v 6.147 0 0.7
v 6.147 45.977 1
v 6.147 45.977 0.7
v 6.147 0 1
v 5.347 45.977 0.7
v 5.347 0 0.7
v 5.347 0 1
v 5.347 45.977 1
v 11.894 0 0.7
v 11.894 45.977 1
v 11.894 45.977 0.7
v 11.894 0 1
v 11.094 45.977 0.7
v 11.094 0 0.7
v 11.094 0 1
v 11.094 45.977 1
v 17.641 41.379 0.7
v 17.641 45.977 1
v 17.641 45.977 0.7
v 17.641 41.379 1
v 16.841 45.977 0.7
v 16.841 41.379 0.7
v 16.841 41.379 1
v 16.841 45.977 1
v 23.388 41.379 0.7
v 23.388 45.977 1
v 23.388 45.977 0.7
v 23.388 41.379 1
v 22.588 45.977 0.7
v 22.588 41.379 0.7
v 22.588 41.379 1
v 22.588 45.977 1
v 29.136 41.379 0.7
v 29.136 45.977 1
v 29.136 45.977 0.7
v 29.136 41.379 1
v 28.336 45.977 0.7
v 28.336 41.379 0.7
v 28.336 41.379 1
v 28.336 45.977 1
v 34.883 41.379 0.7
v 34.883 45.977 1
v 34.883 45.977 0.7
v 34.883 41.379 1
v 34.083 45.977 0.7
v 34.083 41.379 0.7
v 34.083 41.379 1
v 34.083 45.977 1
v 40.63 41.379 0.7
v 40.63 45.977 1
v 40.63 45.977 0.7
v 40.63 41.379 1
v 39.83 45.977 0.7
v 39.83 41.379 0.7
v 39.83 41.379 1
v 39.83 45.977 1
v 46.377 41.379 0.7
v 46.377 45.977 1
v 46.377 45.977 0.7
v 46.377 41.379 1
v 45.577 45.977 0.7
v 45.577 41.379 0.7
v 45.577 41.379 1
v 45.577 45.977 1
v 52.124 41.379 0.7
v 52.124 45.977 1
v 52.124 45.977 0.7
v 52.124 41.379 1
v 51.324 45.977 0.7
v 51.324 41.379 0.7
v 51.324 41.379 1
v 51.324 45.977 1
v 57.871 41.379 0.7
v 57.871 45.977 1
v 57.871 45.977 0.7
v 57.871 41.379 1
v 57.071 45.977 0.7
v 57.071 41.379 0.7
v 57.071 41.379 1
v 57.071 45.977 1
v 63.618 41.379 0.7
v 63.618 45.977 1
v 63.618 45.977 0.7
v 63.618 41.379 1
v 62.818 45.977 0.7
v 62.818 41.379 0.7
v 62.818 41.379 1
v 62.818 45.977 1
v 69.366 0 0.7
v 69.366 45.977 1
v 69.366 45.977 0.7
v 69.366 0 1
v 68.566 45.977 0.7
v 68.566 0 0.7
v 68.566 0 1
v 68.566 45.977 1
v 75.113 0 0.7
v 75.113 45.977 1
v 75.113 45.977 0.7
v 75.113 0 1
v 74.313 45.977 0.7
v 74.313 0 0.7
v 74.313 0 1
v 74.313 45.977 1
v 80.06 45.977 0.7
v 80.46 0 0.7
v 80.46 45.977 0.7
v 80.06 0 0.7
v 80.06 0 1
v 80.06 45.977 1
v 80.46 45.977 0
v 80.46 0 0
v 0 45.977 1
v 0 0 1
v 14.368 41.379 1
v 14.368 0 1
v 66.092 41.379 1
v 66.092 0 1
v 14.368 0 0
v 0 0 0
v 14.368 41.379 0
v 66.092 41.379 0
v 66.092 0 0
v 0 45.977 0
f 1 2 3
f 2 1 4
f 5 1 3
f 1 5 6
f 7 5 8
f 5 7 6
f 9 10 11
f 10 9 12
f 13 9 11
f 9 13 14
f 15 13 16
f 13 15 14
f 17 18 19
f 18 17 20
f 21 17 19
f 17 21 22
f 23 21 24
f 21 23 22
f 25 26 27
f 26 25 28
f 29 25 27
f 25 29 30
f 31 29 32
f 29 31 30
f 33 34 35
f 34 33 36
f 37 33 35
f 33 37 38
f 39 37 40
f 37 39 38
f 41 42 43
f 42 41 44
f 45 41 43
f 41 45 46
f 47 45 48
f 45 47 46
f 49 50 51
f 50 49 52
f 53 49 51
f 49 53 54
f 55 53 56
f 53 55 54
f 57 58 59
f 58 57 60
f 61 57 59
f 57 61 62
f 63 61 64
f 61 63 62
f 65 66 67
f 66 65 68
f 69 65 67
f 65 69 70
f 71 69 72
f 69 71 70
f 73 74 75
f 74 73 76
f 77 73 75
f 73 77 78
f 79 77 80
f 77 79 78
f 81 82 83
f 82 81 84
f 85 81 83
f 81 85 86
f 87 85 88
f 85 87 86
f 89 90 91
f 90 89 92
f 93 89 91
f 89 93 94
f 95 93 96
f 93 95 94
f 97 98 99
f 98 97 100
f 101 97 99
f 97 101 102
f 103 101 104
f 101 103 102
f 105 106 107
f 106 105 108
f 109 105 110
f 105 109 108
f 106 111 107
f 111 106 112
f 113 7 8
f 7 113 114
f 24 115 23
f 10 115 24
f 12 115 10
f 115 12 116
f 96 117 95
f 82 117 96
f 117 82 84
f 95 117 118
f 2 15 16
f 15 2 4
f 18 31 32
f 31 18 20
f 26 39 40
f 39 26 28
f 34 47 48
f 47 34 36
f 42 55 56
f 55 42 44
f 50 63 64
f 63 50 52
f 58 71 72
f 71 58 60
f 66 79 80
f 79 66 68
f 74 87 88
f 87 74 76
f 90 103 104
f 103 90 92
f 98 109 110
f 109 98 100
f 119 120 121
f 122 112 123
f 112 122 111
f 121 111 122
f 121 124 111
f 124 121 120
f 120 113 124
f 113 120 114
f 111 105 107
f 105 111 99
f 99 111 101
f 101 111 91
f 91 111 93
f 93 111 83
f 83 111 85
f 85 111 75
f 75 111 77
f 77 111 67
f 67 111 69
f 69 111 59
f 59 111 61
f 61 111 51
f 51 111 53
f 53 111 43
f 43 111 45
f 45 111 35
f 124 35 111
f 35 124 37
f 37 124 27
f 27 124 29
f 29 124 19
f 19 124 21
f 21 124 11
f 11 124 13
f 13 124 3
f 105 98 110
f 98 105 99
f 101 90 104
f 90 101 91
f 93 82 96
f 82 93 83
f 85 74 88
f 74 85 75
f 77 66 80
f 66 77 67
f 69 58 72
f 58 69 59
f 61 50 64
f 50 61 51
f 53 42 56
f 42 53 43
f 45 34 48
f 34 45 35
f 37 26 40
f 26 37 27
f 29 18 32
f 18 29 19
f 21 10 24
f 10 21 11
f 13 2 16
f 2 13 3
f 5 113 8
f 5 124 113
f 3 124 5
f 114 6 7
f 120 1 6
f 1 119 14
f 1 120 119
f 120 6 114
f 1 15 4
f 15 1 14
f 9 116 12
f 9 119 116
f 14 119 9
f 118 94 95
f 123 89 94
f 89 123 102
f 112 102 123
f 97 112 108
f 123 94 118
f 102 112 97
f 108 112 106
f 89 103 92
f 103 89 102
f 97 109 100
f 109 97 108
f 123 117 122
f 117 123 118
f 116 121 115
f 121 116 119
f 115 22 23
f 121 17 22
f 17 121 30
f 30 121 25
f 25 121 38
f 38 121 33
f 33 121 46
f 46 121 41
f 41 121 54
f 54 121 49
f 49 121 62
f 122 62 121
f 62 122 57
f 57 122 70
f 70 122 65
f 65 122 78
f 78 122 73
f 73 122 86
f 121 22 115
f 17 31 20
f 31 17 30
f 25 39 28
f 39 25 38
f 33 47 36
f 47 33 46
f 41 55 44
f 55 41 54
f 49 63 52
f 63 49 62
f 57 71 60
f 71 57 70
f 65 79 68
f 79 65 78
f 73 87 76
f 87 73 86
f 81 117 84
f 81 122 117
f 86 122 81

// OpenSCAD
/*
 * PROMPT: Front wall panel of the Cities-Skylines-style police station garage annex
 * in H0 scale (1:87). Large vehicle bay opening centred on the facade, vertical siding
 * grooves on exterior face. Flat 1 mm panel, exterior face up.
 */

$fn = 32;
S = 1/87;
panel_t = 1.0;

annex_w_real  = 7000;
annex_h_real  = 4000;
garage_w_real = 4500;
garage_h_real = 3600;
siding_p_real = 500;
siding_w      = 0.8;
siding_d      = 0.3;

annex_w  = annex_w_real * S;
annex_h  = annex_h_real * S;
garage_w = garage_w_real * S;
garage_h = garage_h_real * S;
siding_p = siding_p_real * S;

module garage_wall_front() {
    difference() {
        cube([annex_w, annex_h, panel_t]);

        // vehicle bay opening centred on facade
        translate([(annex_w - garage_w)/2, 0, -1])
            cube([garage_w, garage_h, panel_t+2]);

        // vertical siding grooves on exterior face
        for (i = [1 : floor(annex_w / siding_p)]) {
            gx = i * siding_p - siding_w/2;
            translate([gx, -1, panel_t - siding_d])
                cube([siding_w, annex_h+2, siding_d+1]);
        }
    }
}

garage_wall_front();
